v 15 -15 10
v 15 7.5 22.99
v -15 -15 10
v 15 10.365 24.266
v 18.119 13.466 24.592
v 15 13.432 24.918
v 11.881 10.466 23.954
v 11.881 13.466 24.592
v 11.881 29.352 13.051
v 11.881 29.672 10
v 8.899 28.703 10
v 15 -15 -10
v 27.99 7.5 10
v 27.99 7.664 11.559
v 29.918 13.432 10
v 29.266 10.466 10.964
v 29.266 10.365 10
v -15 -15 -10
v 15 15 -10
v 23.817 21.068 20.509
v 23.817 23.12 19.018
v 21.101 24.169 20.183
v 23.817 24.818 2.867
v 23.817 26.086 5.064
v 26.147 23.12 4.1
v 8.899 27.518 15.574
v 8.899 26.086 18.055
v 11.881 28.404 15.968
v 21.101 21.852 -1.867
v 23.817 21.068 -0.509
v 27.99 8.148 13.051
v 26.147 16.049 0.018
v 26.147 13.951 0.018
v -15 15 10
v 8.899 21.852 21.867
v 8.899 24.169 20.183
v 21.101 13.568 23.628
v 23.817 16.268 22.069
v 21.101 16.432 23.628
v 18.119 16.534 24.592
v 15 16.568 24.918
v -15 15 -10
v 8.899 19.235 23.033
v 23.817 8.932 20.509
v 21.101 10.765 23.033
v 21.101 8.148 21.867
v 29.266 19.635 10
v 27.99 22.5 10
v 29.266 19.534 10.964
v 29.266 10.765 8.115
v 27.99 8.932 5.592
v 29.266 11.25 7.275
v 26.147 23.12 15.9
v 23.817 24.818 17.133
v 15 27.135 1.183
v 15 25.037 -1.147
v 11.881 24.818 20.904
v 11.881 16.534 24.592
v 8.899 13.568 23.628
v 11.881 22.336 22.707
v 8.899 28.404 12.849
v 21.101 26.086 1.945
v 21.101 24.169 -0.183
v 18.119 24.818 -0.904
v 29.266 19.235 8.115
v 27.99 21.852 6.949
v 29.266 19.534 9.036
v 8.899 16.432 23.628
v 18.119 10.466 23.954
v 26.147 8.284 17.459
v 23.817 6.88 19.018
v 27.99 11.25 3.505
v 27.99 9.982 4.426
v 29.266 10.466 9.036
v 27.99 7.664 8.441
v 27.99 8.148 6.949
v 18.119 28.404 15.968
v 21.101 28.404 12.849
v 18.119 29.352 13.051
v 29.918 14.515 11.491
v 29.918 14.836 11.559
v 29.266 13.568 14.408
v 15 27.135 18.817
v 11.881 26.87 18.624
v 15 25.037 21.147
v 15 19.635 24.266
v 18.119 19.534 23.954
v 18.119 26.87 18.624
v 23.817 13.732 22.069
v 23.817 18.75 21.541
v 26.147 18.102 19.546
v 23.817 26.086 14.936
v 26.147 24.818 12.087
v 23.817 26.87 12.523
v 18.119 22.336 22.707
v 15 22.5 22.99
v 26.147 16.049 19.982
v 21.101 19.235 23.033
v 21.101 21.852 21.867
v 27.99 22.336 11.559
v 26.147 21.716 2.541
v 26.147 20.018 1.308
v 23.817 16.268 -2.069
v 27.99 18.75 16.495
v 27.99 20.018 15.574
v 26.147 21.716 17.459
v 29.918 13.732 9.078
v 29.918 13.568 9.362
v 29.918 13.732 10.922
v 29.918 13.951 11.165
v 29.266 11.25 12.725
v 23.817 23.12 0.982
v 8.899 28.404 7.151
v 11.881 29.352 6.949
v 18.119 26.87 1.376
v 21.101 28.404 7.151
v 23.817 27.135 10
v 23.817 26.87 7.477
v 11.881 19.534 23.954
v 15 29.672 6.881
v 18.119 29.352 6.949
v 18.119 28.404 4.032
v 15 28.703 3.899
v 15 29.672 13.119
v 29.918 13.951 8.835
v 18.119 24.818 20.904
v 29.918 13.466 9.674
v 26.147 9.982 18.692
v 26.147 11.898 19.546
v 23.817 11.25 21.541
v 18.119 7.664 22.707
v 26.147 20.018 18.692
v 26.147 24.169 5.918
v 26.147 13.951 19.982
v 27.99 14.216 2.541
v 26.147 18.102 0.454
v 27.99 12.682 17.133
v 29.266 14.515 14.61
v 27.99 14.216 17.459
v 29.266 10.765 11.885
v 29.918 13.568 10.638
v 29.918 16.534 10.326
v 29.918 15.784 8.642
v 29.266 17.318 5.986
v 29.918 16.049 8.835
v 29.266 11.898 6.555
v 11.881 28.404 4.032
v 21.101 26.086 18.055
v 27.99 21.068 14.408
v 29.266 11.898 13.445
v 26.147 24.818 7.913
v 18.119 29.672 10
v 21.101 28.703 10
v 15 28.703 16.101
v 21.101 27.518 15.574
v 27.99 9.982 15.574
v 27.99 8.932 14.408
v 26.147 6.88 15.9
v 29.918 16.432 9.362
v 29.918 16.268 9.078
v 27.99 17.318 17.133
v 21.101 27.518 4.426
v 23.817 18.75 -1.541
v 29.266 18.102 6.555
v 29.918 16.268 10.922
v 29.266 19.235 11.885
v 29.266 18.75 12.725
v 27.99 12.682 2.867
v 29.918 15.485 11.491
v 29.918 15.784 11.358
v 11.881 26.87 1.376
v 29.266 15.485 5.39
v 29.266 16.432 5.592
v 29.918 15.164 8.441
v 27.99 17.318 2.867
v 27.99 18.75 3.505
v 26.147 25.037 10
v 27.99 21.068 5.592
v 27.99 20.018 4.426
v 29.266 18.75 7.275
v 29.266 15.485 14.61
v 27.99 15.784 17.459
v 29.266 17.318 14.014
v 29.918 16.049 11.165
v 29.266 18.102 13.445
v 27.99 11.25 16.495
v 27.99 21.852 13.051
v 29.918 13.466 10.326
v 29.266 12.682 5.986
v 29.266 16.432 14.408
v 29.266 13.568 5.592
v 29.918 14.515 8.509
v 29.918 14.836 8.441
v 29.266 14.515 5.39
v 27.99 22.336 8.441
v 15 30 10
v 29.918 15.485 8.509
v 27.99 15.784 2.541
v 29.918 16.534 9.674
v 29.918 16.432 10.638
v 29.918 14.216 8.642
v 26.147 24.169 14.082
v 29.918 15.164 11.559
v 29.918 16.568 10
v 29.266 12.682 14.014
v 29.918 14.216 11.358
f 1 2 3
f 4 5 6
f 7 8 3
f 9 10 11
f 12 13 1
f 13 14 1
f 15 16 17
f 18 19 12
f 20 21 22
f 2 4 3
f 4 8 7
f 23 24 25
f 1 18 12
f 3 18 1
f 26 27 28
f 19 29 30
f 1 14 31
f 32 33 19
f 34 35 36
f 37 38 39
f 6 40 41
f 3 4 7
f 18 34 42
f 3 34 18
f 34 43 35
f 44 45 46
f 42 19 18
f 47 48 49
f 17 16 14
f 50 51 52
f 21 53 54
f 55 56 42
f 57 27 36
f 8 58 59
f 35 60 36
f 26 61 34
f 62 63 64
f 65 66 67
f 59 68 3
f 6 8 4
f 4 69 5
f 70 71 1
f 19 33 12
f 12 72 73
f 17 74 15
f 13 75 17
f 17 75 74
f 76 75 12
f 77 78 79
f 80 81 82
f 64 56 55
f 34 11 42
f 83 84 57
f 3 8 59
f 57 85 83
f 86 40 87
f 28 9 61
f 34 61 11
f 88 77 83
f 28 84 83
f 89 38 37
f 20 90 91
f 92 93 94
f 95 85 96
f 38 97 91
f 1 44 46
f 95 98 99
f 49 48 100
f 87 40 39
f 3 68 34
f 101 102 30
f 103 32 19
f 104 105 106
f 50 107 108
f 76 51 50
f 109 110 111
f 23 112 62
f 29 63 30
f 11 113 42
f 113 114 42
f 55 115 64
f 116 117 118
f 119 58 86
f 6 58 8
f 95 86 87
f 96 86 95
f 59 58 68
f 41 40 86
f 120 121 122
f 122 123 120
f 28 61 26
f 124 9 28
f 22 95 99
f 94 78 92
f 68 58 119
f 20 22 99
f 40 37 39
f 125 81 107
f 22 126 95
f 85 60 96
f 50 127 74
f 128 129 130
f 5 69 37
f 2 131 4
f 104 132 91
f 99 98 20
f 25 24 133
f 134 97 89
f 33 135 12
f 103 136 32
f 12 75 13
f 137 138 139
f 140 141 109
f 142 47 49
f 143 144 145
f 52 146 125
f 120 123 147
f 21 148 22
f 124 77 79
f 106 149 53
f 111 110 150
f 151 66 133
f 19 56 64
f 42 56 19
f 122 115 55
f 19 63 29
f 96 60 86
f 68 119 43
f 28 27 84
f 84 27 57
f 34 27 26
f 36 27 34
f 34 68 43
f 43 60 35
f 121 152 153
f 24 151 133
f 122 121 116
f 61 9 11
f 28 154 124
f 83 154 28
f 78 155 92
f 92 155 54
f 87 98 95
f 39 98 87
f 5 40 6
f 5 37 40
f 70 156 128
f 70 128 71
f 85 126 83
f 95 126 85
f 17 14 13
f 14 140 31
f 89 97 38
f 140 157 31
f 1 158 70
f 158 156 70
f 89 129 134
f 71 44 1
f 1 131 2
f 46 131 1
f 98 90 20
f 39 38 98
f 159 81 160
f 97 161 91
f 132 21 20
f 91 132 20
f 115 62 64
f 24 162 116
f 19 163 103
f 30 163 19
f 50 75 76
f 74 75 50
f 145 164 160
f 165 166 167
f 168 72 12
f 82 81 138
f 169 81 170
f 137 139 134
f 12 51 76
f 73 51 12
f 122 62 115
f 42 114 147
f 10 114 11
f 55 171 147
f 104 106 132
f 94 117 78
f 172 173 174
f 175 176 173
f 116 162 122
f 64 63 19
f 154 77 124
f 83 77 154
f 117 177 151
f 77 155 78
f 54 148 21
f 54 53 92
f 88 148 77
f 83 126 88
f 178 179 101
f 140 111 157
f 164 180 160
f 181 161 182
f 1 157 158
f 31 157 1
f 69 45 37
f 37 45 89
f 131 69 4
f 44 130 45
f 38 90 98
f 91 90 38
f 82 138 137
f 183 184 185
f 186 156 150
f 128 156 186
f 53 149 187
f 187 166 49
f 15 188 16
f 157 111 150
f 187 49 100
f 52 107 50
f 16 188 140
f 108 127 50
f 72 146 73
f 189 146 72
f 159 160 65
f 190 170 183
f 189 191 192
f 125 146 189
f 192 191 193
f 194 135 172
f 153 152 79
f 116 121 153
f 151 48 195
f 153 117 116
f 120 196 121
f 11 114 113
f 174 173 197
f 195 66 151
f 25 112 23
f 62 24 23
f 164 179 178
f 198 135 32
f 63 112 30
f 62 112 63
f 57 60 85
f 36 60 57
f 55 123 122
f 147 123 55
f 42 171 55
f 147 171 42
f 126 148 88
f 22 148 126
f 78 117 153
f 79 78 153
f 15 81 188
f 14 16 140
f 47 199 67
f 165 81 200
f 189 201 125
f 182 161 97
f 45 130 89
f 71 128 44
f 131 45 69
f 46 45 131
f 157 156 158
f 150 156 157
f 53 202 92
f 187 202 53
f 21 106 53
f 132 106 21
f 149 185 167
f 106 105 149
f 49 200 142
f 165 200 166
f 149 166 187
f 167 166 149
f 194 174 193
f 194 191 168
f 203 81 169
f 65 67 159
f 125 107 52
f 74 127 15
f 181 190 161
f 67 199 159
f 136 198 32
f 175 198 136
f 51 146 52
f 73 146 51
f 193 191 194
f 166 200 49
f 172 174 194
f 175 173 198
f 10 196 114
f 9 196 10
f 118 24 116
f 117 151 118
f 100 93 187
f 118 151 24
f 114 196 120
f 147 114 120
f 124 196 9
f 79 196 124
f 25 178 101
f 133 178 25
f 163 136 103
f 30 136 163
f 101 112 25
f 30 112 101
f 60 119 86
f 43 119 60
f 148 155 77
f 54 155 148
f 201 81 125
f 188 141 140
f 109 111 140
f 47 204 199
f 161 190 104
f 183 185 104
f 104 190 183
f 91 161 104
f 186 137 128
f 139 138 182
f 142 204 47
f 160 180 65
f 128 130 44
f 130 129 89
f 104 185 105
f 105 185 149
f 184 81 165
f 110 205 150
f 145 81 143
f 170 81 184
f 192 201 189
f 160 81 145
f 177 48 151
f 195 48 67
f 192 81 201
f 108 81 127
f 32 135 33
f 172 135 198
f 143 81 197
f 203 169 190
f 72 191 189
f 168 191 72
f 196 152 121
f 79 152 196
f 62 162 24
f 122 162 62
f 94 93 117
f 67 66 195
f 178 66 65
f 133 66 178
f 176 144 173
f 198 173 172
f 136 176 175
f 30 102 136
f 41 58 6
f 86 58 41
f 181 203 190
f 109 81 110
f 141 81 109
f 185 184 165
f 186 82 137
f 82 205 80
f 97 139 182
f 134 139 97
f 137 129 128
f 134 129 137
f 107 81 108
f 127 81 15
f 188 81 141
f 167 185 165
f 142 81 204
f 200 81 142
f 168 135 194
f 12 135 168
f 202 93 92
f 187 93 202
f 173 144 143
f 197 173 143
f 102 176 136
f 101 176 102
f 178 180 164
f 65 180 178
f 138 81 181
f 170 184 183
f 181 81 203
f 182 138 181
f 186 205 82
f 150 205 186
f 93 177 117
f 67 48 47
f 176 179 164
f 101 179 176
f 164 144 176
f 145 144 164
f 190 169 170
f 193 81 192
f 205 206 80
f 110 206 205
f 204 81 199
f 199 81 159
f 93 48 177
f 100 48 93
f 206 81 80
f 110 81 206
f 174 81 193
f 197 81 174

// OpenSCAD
// Start: lazy_union
default_5_default_5();
// End: lazy_union

// Modules.

// 'PartMaterial undef-default - default 5.0'
module default_5_default_5() {
  // 'None : _combine_solids_and_holes'
  union() {
    // 'hull : _combine_solids_and_holes'
    union() {
      // 'overall : _combine_solids_and_holes'
      hull() {
        // 'box'
        multmatrix(m=[[1.0, 0.0, 0.0, -15.0], [0.0, 1.0, 0.0, -15.0], [0.0, 0.0, 1.0, -10.0], [0.0, 0.0, 0.0, 1.0]]) {
          // 'box'
          color(c=[0.9, 0.1, 0.1, 1.0]) {
            // 'box : _combine_solids_and_holes'
            union() {
              // 'box'
              cube(size=[30.0, 30.0, 20.0]);
            }
          }
        }
        // 'sphere'
        multmatrix(m=[[0.0, 0.0, -1.0, 15.0], [-1.0, 0.0, 0.0, 15.0], [0.0, 1.0, 0.0, 10.0], [0.0, 0.0, 0.0, 1.0]]) {
          // 'sphere'
          color(c=[0.1, 0.1, 0.8, 1.0]) {
            // 'sphere : _combine_solids_and_holes'
            union() {
              // 'sphere'
              sphere(r=15.0);
            }
          }
        }
      }
    }
  }
} // end module default_5_default_5
